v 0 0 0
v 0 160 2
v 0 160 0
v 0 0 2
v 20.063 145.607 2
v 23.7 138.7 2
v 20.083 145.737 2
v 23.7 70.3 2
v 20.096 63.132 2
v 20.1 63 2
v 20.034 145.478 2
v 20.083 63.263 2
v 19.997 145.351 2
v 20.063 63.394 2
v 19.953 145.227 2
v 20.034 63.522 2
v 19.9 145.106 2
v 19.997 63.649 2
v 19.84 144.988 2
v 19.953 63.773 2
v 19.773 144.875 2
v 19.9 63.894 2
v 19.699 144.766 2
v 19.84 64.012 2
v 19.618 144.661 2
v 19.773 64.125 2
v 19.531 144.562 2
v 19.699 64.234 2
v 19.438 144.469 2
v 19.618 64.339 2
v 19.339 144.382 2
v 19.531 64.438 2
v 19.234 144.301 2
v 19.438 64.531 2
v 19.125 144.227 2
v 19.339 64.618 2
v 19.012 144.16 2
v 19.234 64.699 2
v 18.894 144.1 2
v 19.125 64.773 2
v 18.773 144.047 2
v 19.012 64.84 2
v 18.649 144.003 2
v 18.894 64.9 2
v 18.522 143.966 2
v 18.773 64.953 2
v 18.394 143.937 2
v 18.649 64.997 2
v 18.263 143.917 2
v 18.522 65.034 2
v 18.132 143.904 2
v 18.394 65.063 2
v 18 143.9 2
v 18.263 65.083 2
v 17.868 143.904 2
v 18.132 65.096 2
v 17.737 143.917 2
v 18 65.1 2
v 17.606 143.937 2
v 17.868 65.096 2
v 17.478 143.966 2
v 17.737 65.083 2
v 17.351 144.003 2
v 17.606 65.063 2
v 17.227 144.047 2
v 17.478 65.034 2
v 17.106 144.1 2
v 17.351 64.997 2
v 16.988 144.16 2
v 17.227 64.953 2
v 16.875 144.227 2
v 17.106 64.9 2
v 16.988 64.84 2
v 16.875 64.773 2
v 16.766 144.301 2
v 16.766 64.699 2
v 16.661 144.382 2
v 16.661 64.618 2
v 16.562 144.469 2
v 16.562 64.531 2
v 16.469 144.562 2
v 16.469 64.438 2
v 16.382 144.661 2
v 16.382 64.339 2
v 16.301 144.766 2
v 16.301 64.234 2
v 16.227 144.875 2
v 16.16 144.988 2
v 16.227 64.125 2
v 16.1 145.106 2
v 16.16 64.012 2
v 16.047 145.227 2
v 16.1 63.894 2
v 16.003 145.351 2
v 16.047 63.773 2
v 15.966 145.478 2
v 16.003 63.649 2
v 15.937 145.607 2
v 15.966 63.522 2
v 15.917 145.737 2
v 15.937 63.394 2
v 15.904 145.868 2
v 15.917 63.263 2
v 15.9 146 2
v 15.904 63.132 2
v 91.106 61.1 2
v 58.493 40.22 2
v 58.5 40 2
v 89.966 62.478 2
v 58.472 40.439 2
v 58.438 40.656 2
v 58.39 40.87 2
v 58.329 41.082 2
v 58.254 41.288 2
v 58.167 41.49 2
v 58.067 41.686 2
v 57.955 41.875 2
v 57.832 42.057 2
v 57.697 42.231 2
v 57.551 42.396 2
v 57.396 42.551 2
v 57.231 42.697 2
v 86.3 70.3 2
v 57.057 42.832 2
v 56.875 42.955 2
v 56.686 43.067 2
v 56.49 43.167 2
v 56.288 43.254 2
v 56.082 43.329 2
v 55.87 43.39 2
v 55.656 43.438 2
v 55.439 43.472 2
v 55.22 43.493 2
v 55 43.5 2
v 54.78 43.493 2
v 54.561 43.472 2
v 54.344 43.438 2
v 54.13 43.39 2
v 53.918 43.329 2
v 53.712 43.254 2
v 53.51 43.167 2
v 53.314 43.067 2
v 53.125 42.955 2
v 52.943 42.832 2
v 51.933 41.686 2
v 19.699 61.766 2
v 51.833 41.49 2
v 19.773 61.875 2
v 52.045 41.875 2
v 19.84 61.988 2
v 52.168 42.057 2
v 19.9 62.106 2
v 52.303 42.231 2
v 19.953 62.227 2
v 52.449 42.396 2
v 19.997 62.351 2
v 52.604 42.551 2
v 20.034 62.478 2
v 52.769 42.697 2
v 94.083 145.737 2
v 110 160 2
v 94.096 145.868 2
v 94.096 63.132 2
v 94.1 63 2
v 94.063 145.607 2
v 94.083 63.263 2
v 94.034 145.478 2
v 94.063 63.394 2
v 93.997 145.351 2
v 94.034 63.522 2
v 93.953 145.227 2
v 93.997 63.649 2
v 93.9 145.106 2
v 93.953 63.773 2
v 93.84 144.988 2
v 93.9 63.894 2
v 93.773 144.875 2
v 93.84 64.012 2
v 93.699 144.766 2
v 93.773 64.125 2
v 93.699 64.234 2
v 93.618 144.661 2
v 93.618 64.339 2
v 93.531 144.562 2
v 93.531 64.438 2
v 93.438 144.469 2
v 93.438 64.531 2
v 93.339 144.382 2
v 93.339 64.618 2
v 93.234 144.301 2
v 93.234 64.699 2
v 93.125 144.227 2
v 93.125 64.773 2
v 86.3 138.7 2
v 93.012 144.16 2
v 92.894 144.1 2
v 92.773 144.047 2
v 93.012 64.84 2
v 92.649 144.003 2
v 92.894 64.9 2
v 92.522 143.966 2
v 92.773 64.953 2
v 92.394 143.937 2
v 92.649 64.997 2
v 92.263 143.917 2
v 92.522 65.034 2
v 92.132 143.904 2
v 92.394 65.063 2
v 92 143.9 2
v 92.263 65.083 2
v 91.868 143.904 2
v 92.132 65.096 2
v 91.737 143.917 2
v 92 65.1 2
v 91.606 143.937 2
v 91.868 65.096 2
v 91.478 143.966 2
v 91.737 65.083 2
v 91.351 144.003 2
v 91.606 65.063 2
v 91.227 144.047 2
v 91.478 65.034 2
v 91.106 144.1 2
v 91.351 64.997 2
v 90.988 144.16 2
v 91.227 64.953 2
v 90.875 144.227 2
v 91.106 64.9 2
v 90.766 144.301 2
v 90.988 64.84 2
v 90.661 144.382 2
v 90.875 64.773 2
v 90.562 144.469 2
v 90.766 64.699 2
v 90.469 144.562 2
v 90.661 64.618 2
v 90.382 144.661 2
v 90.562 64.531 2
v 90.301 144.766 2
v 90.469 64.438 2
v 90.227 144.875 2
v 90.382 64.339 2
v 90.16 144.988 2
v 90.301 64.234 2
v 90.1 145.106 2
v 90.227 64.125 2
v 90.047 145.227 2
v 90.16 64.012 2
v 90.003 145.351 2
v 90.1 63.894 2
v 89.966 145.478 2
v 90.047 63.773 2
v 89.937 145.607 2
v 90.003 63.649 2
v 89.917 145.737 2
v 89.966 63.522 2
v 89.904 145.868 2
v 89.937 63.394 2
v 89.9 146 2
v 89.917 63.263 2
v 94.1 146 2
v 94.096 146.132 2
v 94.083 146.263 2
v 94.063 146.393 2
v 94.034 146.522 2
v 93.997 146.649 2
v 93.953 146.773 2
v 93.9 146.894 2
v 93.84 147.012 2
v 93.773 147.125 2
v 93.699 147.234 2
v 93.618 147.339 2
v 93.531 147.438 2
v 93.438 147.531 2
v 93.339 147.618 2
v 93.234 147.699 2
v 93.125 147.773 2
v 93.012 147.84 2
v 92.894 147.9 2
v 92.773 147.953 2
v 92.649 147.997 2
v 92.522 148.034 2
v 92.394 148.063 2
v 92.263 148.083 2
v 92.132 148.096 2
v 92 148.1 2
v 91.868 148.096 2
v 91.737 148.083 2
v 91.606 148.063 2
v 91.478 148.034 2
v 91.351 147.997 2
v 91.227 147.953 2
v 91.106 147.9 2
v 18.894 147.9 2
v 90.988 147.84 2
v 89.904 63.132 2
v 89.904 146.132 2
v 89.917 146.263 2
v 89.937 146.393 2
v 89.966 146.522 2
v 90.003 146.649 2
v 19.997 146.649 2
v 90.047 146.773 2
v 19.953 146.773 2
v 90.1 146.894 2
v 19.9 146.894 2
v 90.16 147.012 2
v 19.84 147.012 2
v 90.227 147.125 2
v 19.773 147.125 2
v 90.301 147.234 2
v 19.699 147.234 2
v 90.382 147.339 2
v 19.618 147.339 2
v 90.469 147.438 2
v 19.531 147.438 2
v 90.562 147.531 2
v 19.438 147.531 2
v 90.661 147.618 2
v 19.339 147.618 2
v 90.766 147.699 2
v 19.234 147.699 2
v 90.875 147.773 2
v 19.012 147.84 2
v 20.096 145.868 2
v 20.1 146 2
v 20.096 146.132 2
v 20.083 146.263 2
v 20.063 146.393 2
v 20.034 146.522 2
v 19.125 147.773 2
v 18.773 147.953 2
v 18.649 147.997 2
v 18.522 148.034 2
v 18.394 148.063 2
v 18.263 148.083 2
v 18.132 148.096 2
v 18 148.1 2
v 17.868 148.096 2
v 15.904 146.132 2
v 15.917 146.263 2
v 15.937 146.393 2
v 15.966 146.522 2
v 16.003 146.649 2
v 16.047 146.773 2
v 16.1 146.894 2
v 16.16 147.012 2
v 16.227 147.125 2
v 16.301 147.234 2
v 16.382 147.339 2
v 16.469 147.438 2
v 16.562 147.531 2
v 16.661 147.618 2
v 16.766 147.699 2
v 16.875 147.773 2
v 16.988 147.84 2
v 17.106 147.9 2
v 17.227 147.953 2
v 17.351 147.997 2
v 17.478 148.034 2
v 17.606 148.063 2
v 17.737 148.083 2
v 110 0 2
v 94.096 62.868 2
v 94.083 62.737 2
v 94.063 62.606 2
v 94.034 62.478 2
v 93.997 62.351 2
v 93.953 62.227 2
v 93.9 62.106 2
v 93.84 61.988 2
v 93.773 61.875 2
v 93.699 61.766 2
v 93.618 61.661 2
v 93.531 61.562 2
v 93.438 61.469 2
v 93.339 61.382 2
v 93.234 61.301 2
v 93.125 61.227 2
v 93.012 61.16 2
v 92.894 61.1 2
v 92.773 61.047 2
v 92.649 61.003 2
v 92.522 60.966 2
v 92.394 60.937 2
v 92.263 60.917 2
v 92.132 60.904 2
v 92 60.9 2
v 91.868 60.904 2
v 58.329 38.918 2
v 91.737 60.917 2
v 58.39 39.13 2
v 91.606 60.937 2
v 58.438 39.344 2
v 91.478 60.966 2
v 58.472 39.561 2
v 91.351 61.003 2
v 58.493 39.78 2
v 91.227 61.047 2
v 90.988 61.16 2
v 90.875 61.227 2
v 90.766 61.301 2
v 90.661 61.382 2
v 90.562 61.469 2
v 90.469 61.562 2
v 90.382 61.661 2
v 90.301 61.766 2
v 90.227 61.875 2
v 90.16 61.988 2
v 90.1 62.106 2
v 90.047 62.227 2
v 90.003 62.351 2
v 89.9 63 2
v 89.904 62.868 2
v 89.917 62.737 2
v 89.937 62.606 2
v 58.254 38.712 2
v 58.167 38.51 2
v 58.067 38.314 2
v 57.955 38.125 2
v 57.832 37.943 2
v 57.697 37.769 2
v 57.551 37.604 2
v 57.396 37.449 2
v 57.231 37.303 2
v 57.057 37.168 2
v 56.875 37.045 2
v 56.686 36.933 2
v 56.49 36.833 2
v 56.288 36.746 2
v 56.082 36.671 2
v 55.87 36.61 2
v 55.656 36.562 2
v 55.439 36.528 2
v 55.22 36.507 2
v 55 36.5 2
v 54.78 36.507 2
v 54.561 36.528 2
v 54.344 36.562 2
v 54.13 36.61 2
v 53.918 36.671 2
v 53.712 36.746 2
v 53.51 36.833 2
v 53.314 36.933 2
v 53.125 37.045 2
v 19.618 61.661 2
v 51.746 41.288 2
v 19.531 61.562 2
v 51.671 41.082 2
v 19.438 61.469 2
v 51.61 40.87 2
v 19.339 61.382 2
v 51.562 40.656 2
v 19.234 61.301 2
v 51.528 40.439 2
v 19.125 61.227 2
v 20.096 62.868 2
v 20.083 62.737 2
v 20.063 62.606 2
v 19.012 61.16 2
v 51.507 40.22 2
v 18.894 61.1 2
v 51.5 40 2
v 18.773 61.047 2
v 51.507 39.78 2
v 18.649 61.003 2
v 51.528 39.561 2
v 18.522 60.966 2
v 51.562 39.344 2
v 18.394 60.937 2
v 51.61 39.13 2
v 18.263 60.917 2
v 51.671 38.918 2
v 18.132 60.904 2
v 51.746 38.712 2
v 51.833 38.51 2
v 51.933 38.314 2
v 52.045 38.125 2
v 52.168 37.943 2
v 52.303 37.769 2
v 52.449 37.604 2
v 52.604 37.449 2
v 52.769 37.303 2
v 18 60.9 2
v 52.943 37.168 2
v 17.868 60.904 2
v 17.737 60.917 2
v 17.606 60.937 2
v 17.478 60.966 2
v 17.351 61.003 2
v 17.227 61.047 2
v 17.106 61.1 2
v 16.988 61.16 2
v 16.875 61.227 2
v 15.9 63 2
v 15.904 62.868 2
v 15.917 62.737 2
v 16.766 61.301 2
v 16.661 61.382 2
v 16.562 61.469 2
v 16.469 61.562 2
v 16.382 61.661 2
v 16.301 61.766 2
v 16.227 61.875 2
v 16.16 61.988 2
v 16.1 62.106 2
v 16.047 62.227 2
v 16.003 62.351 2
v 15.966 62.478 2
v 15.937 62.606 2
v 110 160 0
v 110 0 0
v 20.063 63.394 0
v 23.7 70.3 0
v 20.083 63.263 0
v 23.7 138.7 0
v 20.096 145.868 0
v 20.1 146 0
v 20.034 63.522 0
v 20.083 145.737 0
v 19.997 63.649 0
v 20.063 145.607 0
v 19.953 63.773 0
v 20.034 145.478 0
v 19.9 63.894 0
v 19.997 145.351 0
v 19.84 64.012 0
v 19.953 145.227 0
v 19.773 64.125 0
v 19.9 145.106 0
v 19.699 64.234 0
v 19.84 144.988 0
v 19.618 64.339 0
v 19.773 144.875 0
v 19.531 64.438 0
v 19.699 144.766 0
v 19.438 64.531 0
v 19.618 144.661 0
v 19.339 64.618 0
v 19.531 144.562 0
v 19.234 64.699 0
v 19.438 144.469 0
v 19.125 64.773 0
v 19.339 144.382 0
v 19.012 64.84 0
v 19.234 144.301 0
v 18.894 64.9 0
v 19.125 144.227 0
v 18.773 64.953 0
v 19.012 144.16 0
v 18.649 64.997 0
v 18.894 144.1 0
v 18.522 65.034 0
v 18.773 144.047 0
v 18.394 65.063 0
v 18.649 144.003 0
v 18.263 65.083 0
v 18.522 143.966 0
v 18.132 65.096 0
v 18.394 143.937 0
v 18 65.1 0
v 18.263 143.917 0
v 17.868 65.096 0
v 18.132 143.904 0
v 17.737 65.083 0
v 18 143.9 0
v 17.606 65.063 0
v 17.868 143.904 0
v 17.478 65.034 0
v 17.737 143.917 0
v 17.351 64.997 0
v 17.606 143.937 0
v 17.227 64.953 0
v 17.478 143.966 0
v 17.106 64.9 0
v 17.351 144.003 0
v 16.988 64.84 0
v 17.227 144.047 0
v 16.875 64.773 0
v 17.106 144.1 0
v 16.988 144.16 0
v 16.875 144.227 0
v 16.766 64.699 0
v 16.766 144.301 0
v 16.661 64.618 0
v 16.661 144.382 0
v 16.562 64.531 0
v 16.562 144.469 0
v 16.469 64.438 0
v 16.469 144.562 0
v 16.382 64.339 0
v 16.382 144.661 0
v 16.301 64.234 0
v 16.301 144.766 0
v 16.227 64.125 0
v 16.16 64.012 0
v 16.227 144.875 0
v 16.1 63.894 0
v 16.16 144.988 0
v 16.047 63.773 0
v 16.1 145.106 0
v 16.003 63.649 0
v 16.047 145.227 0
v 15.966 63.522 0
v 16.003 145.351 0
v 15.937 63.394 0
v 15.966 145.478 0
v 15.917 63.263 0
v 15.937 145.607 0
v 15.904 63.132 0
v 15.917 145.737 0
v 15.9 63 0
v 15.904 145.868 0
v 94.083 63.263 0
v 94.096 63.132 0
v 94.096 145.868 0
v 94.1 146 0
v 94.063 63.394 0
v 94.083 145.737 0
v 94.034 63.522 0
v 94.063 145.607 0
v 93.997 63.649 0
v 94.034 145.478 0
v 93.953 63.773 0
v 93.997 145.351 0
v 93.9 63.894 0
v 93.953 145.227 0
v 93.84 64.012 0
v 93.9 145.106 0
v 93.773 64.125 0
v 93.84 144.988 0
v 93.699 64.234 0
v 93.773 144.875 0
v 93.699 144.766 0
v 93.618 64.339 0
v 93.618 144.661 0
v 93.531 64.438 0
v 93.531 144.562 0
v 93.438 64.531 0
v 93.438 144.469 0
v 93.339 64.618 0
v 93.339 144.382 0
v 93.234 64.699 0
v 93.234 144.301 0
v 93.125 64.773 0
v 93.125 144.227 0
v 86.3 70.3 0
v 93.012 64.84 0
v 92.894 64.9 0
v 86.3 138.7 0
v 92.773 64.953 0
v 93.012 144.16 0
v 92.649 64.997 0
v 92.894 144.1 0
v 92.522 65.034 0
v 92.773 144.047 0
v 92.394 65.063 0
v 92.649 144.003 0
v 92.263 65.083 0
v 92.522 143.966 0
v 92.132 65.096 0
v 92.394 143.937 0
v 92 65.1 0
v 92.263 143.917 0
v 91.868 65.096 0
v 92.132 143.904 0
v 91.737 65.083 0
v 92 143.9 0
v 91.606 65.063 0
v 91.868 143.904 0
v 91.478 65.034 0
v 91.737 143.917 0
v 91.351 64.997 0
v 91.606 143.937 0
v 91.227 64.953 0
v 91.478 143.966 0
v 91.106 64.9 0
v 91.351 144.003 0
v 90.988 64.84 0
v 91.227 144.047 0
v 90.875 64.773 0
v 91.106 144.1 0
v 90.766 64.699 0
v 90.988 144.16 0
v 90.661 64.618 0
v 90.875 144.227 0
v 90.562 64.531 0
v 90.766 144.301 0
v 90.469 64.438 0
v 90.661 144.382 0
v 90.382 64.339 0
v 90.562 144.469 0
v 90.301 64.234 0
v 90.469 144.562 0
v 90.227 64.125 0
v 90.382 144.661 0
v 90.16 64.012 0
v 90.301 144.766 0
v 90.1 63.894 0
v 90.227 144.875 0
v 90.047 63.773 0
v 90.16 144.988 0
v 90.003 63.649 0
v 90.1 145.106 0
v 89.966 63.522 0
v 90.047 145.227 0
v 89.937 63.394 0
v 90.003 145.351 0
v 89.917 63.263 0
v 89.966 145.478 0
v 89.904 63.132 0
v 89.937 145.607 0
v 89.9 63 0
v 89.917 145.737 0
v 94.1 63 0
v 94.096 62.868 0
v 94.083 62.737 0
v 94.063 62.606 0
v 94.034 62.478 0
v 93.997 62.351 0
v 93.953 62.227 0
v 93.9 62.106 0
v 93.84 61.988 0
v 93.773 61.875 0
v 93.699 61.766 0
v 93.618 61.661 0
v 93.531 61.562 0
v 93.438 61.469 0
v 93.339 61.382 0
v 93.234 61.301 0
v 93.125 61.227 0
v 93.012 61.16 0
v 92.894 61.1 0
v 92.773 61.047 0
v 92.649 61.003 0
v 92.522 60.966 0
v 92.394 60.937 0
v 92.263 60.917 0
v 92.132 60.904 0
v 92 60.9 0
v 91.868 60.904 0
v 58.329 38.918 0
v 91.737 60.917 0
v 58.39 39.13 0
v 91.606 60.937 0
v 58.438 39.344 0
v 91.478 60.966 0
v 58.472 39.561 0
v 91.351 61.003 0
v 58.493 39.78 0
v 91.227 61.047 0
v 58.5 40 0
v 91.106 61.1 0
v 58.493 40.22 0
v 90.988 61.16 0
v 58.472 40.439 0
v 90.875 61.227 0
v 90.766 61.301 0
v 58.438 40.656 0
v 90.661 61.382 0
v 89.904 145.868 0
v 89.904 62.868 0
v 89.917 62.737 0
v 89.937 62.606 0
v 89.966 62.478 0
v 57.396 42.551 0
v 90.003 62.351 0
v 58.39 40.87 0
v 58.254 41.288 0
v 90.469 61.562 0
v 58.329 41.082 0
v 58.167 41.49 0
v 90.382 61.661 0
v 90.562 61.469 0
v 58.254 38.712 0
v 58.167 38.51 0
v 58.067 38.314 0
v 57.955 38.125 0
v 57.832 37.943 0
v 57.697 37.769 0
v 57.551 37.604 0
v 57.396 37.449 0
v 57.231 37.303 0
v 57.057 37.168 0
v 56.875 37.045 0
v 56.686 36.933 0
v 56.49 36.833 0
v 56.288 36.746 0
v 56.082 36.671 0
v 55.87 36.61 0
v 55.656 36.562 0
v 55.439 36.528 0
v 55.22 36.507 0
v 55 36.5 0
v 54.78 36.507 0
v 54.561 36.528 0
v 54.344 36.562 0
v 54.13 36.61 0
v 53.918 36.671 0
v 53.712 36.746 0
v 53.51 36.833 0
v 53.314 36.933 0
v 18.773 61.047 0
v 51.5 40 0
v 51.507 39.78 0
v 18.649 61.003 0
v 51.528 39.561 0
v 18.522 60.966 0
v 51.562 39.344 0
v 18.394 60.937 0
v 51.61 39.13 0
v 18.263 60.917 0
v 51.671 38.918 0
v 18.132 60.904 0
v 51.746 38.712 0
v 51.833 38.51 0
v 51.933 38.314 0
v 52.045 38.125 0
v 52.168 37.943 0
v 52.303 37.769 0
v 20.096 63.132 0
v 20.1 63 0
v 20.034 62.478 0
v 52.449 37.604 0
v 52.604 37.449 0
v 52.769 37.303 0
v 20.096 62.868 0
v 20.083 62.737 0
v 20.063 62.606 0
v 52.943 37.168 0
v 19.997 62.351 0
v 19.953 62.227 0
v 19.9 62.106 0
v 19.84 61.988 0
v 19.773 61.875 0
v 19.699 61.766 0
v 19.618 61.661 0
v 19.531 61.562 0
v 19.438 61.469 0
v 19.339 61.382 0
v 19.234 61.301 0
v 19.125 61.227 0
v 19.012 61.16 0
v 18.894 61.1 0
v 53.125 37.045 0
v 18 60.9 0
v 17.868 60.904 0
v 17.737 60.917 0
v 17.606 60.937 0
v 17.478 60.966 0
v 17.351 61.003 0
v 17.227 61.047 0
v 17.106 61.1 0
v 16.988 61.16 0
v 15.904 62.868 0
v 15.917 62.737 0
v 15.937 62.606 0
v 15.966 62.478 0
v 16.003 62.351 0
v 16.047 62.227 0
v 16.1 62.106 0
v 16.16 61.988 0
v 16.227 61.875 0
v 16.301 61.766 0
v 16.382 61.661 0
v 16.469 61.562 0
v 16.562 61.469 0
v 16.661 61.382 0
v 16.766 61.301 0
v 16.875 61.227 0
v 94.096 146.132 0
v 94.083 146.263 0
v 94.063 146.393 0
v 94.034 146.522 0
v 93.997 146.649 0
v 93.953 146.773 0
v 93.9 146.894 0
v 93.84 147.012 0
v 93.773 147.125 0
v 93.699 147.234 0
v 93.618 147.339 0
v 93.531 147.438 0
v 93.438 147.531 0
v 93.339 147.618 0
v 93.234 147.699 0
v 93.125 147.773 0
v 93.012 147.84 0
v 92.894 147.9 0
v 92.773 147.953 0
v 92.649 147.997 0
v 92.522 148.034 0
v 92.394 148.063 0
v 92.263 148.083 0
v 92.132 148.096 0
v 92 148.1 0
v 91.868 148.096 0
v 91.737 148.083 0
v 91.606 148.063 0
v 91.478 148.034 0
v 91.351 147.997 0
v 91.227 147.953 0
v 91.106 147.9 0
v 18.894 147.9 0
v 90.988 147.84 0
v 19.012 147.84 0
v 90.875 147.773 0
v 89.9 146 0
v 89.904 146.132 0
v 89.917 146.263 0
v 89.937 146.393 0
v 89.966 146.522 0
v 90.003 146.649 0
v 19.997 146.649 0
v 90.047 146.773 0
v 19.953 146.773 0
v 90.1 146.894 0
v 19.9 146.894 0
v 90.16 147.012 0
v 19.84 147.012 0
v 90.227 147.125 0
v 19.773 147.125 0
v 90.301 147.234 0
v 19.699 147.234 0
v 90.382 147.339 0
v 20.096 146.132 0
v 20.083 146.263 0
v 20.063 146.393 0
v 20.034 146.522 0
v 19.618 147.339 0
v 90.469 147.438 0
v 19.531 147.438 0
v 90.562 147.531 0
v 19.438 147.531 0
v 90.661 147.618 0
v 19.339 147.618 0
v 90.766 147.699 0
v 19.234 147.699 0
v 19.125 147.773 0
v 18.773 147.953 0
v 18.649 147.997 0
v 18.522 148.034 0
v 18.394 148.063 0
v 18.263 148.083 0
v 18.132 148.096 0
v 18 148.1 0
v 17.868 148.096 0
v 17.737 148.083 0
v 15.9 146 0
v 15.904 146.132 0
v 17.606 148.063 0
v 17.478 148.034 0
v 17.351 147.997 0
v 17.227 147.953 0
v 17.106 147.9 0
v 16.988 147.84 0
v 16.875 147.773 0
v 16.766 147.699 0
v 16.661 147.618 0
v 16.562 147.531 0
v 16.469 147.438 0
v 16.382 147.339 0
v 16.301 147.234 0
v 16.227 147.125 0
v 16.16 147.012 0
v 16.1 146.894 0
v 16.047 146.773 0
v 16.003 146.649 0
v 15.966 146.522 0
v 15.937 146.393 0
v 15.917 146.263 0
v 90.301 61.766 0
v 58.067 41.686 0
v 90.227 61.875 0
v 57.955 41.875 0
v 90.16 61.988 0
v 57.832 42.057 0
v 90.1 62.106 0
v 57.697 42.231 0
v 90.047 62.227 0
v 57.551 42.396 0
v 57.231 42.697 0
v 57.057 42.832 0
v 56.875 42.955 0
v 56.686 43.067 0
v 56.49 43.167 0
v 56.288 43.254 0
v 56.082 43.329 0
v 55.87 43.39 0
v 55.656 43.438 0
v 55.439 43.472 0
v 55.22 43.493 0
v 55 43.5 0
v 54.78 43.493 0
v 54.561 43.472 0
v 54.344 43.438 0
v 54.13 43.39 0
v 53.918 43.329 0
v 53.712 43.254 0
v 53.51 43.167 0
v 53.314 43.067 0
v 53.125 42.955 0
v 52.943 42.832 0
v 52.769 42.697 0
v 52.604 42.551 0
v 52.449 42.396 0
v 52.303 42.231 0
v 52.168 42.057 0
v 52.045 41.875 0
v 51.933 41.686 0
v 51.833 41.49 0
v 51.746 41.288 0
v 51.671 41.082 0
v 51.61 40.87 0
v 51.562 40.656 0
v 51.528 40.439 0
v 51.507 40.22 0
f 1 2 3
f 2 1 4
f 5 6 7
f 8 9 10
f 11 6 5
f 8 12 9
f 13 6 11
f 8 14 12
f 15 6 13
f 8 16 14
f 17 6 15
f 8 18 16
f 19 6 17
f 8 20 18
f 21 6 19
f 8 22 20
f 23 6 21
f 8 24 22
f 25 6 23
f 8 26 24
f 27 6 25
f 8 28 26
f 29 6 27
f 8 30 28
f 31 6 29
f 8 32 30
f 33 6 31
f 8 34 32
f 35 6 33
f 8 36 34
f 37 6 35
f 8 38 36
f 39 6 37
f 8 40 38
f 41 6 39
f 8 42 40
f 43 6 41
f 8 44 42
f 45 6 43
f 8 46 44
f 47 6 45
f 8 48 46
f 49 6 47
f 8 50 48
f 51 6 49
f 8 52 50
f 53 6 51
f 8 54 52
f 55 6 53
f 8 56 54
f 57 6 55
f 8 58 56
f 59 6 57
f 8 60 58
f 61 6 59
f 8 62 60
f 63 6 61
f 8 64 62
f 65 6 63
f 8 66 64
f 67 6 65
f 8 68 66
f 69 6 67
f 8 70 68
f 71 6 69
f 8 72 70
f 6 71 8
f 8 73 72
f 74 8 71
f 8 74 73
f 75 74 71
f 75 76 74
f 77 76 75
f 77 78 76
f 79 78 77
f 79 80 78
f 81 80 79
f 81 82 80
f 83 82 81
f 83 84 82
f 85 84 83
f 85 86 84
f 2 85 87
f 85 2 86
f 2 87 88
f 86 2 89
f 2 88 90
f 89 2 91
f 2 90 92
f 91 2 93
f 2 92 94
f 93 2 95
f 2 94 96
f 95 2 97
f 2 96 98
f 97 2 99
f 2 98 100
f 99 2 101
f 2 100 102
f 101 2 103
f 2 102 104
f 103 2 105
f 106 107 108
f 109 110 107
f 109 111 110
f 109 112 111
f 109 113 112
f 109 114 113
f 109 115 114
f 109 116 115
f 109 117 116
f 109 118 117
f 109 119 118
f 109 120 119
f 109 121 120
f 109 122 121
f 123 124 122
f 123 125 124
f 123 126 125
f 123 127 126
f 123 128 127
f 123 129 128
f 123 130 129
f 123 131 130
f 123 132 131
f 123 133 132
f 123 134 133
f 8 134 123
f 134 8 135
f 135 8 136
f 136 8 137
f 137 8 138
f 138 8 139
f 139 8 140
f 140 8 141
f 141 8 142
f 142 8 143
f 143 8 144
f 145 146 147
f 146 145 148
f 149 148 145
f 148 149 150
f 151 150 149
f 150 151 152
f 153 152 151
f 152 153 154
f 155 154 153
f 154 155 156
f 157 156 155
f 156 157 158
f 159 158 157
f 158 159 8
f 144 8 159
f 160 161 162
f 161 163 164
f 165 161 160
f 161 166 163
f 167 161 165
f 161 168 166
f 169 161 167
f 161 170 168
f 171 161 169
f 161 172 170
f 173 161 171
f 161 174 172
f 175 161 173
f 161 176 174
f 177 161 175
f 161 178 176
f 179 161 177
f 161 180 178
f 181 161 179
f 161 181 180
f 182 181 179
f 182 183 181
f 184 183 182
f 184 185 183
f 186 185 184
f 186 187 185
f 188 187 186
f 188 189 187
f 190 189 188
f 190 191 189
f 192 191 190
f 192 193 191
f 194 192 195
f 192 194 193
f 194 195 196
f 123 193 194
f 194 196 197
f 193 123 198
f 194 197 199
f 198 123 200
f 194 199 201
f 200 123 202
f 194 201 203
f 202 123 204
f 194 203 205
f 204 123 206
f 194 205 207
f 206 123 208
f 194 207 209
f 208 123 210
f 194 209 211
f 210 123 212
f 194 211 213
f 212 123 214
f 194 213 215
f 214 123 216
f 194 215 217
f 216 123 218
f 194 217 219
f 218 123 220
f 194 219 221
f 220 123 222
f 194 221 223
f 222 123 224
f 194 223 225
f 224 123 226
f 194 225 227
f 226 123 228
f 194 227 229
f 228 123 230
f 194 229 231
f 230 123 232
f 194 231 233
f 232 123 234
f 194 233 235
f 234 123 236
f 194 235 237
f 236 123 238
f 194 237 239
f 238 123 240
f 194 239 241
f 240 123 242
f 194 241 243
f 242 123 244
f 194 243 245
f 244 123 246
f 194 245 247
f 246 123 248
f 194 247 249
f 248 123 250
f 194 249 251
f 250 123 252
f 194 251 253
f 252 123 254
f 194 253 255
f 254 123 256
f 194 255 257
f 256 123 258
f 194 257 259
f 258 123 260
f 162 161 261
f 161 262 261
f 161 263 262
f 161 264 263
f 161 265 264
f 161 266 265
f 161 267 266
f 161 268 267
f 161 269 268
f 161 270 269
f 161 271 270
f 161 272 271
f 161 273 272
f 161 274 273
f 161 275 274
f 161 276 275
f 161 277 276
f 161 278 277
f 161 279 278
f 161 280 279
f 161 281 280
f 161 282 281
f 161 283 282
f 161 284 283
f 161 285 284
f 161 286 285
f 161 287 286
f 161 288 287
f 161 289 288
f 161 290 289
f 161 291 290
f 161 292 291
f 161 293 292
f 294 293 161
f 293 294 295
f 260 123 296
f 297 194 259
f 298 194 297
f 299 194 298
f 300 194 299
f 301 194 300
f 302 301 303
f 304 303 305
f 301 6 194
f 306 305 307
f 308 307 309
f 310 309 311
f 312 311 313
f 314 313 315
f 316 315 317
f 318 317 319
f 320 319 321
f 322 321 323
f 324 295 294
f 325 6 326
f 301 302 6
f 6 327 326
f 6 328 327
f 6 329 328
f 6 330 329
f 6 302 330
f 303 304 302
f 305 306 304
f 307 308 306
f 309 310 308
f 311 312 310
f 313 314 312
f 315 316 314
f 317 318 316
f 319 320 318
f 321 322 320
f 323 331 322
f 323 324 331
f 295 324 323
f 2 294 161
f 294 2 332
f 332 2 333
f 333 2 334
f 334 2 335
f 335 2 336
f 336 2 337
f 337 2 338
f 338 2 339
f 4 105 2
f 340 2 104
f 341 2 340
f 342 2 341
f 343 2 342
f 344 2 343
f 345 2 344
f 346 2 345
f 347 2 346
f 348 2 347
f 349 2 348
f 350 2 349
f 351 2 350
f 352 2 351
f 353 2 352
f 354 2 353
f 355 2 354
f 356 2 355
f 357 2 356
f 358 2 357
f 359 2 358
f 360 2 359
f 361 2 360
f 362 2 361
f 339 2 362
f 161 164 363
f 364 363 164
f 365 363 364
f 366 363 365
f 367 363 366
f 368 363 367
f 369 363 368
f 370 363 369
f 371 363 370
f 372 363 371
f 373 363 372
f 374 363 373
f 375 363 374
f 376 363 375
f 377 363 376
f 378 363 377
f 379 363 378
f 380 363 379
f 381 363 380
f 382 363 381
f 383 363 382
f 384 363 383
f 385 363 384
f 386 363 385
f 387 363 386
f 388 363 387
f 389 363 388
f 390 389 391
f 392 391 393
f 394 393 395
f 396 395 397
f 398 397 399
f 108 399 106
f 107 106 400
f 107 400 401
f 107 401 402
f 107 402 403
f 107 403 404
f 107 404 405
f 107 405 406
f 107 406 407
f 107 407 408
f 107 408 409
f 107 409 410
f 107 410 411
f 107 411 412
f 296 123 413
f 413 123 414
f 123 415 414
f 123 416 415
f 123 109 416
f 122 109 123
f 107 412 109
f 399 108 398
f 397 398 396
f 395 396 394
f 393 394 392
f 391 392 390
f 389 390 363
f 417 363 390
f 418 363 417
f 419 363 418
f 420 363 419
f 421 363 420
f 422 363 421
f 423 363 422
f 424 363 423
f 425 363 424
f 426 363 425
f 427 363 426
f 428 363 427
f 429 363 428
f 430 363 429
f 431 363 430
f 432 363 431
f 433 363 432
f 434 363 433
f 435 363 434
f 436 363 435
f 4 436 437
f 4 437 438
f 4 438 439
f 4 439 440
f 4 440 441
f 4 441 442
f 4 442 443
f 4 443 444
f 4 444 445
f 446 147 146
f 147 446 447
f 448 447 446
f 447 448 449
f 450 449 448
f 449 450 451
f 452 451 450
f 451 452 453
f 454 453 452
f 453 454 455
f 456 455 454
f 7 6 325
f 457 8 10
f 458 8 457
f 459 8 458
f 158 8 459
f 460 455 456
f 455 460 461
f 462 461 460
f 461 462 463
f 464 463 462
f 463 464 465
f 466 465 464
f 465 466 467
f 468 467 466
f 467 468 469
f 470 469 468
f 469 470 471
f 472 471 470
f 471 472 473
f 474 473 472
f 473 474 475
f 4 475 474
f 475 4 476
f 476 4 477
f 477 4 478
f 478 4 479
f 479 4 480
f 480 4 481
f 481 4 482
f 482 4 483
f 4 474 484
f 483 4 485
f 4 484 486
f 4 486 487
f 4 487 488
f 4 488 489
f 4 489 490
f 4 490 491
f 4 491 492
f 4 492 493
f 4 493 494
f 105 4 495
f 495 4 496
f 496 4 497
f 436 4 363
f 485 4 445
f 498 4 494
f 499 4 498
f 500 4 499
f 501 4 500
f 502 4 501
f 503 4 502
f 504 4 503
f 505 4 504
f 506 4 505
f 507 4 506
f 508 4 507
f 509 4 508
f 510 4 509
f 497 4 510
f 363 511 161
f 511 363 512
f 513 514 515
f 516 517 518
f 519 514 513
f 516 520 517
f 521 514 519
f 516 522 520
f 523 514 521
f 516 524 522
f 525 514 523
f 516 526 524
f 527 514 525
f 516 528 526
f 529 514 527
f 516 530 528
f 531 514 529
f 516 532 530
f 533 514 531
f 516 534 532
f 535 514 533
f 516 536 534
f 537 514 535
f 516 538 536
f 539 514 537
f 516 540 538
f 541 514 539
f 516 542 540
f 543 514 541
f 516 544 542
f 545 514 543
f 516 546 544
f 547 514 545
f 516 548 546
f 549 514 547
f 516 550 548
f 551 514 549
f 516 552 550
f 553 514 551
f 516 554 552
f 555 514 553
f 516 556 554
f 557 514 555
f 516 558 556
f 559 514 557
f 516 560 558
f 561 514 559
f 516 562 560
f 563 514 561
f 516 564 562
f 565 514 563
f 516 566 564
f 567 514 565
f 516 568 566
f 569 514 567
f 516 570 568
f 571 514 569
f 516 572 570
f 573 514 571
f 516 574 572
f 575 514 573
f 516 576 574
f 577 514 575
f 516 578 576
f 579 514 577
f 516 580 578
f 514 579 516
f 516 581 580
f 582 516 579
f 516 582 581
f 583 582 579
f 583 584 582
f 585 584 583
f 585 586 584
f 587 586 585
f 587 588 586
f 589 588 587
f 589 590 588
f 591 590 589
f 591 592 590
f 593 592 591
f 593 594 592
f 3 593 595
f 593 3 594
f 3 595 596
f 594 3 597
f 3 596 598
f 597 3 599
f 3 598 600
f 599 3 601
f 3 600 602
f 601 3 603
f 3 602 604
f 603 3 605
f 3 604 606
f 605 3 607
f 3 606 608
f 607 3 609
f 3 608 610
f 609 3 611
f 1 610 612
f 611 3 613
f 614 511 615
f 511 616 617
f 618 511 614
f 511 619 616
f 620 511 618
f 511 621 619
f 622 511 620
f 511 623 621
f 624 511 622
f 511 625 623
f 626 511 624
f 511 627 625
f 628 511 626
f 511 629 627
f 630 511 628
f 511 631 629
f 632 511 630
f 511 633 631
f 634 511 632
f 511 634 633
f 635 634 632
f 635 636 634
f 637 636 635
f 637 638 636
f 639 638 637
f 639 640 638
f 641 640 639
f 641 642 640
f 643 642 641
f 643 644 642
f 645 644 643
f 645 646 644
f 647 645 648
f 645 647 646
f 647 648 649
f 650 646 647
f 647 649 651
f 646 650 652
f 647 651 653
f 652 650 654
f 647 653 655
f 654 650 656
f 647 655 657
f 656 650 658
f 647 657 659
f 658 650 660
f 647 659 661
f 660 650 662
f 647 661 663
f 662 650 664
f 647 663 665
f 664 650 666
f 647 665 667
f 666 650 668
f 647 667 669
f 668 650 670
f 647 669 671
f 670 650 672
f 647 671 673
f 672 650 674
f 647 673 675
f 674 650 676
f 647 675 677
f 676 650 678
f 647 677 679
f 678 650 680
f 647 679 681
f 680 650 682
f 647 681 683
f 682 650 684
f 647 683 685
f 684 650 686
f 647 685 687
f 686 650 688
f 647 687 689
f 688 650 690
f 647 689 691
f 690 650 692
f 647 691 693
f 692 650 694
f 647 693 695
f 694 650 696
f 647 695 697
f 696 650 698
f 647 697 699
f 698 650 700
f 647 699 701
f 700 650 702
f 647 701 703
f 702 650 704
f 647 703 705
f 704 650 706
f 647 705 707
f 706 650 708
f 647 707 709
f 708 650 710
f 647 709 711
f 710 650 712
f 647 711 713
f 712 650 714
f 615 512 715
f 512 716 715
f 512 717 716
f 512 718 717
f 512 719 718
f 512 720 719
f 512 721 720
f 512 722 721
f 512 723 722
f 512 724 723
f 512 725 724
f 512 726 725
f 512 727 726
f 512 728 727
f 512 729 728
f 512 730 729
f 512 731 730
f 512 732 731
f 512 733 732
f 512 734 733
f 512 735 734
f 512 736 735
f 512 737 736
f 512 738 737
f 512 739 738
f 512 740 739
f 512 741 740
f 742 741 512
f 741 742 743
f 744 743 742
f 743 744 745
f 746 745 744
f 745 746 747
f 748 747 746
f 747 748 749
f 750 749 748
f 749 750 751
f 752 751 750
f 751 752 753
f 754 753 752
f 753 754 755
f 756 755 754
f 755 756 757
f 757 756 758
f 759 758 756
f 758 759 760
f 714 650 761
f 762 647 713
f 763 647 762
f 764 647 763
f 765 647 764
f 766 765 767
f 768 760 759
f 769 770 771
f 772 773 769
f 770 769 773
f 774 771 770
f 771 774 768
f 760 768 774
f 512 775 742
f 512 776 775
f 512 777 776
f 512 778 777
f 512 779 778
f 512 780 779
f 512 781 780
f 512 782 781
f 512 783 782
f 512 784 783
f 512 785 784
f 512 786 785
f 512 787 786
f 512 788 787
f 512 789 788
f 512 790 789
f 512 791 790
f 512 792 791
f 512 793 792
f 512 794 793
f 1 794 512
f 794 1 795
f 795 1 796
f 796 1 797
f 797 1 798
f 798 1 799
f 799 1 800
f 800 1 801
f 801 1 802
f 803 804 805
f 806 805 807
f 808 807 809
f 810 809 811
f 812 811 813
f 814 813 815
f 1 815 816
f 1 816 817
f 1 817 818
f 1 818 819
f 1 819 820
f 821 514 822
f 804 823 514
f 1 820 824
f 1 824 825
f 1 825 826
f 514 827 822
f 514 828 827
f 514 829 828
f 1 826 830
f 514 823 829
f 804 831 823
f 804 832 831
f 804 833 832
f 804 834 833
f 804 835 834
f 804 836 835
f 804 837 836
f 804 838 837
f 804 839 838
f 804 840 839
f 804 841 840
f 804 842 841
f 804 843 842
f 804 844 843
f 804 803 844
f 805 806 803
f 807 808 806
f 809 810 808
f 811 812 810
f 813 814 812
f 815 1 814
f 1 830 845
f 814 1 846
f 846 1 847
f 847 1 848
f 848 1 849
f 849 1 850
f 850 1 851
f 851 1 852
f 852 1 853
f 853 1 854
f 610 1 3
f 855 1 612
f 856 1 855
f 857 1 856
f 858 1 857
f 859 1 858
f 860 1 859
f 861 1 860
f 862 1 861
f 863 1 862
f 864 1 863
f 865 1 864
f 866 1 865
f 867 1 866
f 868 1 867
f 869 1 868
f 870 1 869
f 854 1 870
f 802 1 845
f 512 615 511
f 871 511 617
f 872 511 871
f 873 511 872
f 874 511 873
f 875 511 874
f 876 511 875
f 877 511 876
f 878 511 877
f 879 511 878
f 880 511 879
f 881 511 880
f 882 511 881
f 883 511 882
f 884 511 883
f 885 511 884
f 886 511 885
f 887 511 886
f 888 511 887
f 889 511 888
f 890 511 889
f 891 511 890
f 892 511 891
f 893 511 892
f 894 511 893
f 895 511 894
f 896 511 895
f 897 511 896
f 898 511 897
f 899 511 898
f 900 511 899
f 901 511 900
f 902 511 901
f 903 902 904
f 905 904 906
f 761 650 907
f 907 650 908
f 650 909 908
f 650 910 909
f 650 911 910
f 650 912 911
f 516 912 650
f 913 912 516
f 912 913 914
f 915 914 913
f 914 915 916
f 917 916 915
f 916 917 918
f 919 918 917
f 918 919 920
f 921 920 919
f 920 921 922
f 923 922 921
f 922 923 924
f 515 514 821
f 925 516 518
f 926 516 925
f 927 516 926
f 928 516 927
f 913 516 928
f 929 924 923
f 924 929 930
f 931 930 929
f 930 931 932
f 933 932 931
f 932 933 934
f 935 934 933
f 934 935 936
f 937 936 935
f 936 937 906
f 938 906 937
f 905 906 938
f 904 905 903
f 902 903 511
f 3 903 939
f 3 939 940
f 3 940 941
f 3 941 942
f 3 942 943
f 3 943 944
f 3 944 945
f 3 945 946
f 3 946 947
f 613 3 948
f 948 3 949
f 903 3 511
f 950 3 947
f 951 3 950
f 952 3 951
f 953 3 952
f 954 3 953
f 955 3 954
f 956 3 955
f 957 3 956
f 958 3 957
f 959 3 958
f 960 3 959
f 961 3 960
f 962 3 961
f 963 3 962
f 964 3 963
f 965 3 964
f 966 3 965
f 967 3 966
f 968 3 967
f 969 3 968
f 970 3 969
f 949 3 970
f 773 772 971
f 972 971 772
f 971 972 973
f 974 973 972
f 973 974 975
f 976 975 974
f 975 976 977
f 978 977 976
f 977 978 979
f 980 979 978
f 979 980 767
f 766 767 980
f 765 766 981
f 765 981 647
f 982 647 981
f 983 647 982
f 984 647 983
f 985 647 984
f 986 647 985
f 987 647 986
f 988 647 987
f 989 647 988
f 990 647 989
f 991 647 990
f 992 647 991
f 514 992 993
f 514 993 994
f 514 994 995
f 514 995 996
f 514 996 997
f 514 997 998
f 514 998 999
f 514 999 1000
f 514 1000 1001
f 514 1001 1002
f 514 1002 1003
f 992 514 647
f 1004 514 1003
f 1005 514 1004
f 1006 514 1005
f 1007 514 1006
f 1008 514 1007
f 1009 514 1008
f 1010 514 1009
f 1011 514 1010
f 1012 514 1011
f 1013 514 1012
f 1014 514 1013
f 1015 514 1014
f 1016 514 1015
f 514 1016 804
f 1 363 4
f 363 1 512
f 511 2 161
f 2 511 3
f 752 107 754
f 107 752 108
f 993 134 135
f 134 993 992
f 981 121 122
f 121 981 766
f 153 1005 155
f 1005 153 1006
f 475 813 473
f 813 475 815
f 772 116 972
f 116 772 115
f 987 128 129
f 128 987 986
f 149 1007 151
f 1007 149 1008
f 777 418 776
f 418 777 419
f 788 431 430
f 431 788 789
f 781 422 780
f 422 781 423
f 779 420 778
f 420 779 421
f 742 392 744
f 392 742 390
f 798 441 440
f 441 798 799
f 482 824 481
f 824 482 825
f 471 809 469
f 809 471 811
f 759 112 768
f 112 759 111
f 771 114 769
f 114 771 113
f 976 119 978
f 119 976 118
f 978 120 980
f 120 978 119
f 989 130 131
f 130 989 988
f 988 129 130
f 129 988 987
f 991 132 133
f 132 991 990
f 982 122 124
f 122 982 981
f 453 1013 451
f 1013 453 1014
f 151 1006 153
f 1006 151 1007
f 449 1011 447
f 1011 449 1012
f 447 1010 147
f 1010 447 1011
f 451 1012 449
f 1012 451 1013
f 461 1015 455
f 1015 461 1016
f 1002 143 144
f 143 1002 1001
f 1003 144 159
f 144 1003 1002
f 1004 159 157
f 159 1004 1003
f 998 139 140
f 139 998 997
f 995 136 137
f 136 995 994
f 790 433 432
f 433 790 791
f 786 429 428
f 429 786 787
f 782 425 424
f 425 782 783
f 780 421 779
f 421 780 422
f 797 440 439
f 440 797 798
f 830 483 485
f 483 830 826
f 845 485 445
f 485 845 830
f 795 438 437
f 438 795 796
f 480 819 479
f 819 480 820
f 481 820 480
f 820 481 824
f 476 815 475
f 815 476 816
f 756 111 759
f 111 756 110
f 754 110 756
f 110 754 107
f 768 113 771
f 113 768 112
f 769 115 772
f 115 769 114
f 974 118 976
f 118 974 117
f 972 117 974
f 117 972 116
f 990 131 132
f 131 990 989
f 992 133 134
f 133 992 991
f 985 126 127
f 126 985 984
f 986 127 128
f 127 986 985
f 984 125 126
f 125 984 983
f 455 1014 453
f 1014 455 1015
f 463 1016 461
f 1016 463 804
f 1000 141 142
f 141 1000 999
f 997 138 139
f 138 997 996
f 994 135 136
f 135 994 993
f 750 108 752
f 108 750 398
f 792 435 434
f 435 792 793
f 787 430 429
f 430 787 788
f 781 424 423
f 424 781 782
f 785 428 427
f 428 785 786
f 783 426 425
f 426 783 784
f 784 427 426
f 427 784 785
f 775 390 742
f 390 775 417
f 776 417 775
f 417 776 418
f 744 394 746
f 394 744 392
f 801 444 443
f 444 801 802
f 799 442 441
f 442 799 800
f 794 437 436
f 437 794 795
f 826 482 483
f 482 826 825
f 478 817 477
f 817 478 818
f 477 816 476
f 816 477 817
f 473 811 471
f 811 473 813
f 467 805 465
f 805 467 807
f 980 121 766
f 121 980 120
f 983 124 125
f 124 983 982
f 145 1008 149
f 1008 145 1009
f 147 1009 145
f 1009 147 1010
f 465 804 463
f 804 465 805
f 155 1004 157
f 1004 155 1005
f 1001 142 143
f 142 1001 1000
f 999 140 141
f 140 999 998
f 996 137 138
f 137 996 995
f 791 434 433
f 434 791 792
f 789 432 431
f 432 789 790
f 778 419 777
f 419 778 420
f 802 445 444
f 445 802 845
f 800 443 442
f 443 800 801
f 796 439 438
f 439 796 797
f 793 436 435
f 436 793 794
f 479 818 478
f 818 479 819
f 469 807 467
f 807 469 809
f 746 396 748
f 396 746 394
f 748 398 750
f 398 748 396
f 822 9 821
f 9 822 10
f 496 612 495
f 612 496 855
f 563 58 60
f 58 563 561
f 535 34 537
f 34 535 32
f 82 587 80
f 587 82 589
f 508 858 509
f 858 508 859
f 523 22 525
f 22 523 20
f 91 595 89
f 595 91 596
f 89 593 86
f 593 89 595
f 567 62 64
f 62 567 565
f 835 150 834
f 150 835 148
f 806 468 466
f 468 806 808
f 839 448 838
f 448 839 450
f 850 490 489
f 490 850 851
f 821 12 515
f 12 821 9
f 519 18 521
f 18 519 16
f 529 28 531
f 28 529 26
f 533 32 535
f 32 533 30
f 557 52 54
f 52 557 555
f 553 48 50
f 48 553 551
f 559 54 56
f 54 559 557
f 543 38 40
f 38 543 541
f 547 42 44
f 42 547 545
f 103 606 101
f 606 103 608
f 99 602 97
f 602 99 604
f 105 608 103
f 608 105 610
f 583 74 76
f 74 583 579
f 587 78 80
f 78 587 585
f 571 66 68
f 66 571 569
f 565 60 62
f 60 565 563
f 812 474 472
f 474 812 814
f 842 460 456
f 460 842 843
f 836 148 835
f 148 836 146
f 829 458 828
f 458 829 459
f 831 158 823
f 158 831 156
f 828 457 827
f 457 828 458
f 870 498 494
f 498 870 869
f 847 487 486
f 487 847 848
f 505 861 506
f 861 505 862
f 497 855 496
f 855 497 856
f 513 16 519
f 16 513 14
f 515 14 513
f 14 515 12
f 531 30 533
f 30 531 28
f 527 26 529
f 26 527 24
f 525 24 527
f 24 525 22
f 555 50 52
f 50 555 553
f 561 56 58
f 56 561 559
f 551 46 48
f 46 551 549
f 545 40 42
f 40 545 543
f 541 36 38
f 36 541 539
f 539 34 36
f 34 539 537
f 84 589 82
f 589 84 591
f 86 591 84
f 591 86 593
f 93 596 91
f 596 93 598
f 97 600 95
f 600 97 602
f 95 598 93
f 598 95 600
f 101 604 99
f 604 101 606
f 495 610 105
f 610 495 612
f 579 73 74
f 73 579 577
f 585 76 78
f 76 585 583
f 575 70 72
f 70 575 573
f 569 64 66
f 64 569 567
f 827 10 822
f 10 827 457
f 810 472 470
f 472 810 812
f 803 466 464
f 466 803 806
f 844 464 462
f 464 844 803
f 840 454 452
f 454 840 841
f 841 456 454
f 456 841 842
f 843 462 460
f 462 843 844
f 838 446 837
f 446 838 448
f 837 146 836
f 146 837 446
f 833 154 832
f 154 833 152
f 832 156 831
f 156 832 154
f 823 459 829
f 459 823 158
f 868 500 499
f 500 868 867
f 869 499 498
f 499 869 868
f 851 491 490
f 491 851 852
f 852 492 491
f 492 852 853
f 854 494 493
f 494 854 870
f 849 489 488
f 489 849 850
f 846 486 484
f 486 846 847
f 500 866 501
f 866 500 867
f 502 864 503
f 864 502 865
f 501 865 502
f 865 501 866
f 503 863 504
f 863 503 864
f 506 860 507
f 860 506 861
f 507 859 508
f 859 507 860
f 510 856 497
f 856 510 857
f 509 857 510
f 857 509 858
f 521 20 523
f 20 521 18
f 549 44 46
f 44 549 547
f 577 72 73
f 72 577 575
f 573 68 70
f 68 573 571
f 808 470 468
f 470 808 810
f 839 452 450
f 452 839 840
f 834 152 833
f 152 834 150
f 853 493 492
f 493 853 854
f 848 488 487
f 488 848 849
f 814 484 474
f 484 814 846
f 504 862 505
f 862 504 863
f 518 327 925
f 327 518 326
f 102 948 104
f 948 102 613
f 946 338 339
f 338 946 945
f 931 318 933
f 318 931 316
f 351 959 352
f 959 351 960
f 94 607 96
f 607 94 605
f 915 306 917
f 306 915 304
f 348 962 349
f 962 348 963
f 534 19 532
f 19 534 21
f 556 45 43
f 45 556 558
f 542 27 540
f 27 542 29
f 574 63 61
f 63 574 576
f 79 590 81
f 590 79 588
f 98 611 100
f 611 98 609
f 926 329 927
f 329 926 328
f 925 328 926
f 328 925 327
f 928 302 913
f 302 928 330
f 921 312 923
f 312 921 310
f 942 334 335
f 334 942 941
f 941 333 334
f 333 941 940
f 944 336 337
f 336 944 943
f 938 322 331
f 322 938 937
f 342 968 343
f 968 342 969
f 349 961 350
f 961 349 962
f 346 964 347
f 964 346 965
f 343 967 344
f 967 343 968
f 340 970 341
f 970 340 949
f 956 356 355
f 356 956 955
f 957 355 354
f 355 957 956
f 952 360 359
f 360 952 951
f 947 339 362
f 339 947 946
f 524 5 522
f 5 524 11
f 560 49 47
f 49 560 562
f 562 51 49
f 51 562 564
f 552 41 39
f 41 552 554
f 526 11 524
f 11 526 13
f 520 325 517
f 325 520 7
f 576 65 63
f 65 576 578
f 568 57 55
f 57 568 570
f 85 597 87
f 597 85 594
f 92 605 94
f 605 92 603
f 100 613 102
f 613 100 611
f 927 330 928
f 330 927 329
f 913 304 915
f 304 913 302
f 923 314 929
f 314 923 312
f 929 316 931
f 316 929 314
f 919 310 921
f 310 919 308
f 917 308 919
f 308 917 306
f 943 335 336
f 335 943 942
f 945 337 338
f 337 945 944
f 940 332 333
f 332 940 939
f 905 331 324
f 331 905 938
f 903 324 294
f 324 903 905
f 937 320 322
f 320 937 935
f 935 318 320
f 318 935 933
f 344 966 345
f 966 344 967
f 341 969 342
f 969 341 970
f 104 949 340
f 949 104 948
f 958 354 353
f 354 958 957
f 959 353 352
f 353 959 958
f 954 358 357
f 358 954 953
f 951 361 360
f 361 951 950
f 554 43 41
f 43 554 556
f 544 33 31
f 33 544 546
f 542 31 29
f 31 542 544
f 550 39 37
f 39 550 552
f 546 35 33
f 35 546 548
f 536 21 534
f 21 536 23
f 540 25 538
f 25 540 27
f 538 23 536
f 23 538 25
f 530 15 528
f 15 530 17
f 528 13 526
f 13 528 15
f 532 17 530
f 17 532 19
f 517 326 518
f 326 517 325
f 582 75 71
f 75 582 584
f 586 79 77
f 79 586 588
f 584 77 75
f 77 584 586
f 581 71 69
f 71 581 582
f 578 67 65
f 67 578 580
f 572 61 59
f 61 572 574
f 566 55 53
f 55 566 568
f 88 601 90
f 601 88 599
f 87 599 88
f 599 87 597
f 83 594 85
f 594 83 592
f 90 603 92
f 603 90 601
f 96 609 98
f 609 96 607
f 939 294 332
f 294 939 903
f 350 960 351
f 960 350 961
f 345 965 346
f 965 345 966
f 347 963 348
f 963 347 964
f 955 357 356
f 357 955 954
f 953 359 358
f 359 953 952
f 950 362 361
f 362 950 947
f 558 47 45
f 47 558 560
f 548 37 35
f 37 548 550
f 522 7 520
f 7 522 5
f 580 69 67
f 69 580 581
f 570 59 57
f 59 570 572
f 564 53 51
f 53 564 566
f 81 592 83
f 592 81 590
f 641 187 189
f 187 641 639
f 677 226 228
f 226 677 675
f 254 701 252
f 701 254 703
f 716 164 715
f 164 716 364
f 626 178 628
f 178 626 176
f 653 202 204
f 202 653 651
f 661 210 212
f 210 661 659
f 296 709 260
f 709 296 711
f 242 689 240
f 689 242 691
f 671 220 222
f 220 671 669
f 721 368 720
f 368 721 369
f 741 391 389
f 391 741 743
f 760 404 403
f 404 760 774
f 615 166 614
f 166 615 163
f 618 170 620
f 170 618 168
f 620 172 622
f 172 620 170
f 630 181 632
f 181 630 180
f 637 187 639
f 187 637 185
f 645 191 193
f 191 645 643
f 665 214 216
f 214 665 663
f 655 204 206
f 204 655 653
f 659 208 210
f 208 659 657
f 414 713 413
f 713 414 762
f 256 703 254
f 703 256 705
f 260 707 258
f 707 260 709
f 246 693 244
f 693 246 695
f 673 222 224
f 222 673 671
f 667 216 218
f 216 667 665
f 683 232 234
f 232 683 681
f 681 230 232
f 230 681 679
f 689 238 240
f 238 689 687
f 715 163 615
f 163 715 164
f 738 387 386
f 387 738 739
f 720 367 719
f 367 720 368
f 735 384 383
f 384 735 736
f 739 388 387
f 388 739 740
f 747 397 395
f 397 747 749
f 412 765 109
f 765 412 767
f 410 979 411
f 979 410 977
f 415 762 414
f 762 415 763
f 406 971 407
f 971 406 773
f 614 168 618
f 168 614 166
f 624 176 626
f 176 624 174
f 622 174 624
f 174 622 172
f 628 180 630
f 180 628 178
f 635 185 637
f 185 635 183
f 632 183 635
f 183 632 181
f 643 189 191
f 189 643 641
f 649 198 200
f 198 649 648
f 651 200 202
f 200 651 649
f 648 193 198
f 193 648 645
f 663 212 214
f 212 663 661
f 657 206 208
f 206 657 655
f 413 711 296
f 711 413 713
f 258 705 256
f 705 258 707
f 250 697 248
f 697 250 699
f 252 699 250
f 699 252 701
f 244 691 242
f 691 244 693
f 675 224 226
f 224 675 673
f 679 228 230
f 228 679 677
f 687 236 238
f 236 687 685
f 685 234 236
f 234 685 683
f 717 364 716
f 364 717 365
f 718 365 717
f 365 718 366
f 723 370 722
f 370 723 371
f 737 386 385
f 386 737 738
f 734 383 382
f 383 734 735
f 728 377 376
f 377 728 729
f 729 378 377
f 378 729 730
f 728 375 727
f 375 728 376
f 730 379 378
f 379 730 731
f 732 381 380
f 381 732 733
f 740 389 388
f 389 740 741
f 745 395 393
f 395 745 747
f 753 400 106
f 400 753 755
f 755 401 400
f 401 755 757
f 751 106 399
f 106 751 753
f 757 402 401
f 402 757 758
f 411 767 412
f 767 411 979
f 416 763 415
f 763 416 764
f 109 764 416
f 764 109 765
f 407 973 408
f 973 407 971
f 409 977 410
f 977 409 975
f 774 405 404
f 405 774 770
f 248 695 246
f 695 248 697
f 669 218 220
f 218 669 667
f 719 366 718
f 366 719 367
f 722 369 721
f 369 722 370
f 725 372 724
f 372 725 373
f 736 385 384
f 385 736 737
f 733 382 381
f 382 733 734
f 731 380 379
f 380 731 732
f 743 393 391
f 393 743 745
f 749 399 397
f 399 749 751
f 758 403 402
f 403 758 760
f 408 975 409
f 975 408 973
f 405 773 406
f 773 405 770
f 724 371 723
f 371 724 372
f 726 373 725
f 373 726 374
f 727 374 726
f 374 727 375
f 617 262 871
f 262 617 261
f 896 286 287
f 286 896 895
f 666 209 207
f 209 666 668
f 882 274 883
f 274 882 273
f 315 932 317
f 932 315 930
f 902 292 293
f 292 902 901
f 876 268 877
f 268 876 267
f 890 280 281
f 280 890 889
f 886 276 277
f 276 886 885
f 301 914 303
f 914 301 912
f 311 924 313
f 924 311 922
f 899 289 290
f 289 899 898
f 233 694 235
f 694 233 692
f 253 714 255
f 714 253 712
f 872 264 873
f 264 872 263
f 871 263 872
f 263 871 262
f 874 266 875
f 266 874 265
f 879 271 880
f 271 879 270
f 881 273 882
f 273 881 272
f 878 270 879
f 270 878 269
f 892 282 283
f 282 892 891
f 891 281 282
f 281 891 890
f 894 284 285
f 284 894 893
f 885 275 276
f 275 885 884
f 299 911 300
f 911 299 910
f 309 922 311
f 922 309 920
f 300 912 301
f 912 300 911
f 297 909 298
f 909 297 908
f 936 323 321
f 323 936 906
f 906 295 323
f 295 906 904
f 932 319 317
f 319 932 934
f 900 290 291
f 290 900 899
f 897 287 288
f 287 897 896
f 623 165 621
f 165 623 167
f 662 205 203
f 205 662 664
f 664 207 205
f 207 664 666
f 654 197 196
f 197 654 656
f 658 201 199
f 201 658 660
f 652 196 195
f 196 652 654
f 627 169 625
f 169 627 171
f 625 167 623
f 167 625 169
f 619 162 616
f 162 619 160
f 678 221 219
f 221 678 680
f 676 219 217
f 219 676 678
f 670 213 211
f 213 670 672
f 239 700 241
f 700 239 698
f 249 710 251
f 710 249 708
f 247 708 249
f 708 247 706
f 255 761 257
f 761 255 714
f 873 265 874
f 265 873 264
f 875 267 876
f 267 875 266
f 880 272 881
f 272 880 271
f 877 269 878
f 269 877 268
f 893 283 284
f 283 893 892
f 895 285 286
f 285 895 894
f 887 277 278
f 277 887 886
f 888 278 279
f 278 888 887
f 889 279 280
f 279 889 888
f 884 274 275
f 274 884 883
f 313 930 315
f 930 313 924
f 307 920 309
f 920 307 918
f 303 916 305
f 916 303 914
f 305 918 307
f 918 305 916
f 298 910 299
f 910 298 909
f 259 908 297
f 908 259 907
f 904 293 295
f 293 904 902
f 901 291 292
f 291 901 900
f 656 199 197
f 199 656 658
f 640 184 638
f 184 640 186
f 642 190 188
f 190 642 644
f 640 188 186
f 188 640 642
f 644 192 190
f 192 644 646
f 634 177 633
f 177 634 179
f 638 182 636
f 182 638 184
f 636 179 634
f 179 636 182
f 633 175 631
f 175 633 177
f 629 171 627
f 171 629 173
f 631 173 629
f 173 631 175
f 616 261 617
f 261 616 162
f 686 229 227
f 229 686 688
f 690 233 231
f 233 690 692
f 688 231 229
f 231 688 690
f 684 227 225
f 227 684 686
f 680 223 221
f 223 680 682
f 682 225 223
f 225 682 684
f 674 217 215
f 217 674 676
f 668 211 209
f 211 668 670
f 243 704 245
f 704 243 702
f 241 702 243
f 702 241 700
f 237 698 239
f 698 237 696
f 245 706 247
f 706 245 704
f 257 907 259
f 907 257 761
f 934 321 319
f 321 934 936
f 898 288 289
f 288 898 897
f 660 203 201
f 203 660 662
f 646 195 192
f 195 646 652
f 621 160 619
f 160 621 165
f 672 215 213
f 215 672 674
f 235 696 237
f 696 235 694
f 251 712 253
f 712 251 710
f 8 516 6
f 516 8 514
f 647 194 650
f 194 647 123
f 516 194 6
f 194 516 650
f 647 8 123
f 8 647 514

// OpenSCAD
difference(){
    // plate
    cube([110,160,2],false);    
    translate ([55,40,-25]) cylinder(50,d=7,true,$fn=100);
    translate ([18,63,-25]) cylinder(50,d=4.2,true,$fn=100);
    translate ([18,146,-25]) cylinder(50,d=4.2,true,$fn=100);
    translate ([92,63,-25]) cylinder(50,d=4.2,true,$fn=100);
    translate ([92,146,-25]) cylinder(50,d=4.2,true,$fn=100);
    translate ([55,104.5,0]) cube([62.6,68.4,50],true);
}
